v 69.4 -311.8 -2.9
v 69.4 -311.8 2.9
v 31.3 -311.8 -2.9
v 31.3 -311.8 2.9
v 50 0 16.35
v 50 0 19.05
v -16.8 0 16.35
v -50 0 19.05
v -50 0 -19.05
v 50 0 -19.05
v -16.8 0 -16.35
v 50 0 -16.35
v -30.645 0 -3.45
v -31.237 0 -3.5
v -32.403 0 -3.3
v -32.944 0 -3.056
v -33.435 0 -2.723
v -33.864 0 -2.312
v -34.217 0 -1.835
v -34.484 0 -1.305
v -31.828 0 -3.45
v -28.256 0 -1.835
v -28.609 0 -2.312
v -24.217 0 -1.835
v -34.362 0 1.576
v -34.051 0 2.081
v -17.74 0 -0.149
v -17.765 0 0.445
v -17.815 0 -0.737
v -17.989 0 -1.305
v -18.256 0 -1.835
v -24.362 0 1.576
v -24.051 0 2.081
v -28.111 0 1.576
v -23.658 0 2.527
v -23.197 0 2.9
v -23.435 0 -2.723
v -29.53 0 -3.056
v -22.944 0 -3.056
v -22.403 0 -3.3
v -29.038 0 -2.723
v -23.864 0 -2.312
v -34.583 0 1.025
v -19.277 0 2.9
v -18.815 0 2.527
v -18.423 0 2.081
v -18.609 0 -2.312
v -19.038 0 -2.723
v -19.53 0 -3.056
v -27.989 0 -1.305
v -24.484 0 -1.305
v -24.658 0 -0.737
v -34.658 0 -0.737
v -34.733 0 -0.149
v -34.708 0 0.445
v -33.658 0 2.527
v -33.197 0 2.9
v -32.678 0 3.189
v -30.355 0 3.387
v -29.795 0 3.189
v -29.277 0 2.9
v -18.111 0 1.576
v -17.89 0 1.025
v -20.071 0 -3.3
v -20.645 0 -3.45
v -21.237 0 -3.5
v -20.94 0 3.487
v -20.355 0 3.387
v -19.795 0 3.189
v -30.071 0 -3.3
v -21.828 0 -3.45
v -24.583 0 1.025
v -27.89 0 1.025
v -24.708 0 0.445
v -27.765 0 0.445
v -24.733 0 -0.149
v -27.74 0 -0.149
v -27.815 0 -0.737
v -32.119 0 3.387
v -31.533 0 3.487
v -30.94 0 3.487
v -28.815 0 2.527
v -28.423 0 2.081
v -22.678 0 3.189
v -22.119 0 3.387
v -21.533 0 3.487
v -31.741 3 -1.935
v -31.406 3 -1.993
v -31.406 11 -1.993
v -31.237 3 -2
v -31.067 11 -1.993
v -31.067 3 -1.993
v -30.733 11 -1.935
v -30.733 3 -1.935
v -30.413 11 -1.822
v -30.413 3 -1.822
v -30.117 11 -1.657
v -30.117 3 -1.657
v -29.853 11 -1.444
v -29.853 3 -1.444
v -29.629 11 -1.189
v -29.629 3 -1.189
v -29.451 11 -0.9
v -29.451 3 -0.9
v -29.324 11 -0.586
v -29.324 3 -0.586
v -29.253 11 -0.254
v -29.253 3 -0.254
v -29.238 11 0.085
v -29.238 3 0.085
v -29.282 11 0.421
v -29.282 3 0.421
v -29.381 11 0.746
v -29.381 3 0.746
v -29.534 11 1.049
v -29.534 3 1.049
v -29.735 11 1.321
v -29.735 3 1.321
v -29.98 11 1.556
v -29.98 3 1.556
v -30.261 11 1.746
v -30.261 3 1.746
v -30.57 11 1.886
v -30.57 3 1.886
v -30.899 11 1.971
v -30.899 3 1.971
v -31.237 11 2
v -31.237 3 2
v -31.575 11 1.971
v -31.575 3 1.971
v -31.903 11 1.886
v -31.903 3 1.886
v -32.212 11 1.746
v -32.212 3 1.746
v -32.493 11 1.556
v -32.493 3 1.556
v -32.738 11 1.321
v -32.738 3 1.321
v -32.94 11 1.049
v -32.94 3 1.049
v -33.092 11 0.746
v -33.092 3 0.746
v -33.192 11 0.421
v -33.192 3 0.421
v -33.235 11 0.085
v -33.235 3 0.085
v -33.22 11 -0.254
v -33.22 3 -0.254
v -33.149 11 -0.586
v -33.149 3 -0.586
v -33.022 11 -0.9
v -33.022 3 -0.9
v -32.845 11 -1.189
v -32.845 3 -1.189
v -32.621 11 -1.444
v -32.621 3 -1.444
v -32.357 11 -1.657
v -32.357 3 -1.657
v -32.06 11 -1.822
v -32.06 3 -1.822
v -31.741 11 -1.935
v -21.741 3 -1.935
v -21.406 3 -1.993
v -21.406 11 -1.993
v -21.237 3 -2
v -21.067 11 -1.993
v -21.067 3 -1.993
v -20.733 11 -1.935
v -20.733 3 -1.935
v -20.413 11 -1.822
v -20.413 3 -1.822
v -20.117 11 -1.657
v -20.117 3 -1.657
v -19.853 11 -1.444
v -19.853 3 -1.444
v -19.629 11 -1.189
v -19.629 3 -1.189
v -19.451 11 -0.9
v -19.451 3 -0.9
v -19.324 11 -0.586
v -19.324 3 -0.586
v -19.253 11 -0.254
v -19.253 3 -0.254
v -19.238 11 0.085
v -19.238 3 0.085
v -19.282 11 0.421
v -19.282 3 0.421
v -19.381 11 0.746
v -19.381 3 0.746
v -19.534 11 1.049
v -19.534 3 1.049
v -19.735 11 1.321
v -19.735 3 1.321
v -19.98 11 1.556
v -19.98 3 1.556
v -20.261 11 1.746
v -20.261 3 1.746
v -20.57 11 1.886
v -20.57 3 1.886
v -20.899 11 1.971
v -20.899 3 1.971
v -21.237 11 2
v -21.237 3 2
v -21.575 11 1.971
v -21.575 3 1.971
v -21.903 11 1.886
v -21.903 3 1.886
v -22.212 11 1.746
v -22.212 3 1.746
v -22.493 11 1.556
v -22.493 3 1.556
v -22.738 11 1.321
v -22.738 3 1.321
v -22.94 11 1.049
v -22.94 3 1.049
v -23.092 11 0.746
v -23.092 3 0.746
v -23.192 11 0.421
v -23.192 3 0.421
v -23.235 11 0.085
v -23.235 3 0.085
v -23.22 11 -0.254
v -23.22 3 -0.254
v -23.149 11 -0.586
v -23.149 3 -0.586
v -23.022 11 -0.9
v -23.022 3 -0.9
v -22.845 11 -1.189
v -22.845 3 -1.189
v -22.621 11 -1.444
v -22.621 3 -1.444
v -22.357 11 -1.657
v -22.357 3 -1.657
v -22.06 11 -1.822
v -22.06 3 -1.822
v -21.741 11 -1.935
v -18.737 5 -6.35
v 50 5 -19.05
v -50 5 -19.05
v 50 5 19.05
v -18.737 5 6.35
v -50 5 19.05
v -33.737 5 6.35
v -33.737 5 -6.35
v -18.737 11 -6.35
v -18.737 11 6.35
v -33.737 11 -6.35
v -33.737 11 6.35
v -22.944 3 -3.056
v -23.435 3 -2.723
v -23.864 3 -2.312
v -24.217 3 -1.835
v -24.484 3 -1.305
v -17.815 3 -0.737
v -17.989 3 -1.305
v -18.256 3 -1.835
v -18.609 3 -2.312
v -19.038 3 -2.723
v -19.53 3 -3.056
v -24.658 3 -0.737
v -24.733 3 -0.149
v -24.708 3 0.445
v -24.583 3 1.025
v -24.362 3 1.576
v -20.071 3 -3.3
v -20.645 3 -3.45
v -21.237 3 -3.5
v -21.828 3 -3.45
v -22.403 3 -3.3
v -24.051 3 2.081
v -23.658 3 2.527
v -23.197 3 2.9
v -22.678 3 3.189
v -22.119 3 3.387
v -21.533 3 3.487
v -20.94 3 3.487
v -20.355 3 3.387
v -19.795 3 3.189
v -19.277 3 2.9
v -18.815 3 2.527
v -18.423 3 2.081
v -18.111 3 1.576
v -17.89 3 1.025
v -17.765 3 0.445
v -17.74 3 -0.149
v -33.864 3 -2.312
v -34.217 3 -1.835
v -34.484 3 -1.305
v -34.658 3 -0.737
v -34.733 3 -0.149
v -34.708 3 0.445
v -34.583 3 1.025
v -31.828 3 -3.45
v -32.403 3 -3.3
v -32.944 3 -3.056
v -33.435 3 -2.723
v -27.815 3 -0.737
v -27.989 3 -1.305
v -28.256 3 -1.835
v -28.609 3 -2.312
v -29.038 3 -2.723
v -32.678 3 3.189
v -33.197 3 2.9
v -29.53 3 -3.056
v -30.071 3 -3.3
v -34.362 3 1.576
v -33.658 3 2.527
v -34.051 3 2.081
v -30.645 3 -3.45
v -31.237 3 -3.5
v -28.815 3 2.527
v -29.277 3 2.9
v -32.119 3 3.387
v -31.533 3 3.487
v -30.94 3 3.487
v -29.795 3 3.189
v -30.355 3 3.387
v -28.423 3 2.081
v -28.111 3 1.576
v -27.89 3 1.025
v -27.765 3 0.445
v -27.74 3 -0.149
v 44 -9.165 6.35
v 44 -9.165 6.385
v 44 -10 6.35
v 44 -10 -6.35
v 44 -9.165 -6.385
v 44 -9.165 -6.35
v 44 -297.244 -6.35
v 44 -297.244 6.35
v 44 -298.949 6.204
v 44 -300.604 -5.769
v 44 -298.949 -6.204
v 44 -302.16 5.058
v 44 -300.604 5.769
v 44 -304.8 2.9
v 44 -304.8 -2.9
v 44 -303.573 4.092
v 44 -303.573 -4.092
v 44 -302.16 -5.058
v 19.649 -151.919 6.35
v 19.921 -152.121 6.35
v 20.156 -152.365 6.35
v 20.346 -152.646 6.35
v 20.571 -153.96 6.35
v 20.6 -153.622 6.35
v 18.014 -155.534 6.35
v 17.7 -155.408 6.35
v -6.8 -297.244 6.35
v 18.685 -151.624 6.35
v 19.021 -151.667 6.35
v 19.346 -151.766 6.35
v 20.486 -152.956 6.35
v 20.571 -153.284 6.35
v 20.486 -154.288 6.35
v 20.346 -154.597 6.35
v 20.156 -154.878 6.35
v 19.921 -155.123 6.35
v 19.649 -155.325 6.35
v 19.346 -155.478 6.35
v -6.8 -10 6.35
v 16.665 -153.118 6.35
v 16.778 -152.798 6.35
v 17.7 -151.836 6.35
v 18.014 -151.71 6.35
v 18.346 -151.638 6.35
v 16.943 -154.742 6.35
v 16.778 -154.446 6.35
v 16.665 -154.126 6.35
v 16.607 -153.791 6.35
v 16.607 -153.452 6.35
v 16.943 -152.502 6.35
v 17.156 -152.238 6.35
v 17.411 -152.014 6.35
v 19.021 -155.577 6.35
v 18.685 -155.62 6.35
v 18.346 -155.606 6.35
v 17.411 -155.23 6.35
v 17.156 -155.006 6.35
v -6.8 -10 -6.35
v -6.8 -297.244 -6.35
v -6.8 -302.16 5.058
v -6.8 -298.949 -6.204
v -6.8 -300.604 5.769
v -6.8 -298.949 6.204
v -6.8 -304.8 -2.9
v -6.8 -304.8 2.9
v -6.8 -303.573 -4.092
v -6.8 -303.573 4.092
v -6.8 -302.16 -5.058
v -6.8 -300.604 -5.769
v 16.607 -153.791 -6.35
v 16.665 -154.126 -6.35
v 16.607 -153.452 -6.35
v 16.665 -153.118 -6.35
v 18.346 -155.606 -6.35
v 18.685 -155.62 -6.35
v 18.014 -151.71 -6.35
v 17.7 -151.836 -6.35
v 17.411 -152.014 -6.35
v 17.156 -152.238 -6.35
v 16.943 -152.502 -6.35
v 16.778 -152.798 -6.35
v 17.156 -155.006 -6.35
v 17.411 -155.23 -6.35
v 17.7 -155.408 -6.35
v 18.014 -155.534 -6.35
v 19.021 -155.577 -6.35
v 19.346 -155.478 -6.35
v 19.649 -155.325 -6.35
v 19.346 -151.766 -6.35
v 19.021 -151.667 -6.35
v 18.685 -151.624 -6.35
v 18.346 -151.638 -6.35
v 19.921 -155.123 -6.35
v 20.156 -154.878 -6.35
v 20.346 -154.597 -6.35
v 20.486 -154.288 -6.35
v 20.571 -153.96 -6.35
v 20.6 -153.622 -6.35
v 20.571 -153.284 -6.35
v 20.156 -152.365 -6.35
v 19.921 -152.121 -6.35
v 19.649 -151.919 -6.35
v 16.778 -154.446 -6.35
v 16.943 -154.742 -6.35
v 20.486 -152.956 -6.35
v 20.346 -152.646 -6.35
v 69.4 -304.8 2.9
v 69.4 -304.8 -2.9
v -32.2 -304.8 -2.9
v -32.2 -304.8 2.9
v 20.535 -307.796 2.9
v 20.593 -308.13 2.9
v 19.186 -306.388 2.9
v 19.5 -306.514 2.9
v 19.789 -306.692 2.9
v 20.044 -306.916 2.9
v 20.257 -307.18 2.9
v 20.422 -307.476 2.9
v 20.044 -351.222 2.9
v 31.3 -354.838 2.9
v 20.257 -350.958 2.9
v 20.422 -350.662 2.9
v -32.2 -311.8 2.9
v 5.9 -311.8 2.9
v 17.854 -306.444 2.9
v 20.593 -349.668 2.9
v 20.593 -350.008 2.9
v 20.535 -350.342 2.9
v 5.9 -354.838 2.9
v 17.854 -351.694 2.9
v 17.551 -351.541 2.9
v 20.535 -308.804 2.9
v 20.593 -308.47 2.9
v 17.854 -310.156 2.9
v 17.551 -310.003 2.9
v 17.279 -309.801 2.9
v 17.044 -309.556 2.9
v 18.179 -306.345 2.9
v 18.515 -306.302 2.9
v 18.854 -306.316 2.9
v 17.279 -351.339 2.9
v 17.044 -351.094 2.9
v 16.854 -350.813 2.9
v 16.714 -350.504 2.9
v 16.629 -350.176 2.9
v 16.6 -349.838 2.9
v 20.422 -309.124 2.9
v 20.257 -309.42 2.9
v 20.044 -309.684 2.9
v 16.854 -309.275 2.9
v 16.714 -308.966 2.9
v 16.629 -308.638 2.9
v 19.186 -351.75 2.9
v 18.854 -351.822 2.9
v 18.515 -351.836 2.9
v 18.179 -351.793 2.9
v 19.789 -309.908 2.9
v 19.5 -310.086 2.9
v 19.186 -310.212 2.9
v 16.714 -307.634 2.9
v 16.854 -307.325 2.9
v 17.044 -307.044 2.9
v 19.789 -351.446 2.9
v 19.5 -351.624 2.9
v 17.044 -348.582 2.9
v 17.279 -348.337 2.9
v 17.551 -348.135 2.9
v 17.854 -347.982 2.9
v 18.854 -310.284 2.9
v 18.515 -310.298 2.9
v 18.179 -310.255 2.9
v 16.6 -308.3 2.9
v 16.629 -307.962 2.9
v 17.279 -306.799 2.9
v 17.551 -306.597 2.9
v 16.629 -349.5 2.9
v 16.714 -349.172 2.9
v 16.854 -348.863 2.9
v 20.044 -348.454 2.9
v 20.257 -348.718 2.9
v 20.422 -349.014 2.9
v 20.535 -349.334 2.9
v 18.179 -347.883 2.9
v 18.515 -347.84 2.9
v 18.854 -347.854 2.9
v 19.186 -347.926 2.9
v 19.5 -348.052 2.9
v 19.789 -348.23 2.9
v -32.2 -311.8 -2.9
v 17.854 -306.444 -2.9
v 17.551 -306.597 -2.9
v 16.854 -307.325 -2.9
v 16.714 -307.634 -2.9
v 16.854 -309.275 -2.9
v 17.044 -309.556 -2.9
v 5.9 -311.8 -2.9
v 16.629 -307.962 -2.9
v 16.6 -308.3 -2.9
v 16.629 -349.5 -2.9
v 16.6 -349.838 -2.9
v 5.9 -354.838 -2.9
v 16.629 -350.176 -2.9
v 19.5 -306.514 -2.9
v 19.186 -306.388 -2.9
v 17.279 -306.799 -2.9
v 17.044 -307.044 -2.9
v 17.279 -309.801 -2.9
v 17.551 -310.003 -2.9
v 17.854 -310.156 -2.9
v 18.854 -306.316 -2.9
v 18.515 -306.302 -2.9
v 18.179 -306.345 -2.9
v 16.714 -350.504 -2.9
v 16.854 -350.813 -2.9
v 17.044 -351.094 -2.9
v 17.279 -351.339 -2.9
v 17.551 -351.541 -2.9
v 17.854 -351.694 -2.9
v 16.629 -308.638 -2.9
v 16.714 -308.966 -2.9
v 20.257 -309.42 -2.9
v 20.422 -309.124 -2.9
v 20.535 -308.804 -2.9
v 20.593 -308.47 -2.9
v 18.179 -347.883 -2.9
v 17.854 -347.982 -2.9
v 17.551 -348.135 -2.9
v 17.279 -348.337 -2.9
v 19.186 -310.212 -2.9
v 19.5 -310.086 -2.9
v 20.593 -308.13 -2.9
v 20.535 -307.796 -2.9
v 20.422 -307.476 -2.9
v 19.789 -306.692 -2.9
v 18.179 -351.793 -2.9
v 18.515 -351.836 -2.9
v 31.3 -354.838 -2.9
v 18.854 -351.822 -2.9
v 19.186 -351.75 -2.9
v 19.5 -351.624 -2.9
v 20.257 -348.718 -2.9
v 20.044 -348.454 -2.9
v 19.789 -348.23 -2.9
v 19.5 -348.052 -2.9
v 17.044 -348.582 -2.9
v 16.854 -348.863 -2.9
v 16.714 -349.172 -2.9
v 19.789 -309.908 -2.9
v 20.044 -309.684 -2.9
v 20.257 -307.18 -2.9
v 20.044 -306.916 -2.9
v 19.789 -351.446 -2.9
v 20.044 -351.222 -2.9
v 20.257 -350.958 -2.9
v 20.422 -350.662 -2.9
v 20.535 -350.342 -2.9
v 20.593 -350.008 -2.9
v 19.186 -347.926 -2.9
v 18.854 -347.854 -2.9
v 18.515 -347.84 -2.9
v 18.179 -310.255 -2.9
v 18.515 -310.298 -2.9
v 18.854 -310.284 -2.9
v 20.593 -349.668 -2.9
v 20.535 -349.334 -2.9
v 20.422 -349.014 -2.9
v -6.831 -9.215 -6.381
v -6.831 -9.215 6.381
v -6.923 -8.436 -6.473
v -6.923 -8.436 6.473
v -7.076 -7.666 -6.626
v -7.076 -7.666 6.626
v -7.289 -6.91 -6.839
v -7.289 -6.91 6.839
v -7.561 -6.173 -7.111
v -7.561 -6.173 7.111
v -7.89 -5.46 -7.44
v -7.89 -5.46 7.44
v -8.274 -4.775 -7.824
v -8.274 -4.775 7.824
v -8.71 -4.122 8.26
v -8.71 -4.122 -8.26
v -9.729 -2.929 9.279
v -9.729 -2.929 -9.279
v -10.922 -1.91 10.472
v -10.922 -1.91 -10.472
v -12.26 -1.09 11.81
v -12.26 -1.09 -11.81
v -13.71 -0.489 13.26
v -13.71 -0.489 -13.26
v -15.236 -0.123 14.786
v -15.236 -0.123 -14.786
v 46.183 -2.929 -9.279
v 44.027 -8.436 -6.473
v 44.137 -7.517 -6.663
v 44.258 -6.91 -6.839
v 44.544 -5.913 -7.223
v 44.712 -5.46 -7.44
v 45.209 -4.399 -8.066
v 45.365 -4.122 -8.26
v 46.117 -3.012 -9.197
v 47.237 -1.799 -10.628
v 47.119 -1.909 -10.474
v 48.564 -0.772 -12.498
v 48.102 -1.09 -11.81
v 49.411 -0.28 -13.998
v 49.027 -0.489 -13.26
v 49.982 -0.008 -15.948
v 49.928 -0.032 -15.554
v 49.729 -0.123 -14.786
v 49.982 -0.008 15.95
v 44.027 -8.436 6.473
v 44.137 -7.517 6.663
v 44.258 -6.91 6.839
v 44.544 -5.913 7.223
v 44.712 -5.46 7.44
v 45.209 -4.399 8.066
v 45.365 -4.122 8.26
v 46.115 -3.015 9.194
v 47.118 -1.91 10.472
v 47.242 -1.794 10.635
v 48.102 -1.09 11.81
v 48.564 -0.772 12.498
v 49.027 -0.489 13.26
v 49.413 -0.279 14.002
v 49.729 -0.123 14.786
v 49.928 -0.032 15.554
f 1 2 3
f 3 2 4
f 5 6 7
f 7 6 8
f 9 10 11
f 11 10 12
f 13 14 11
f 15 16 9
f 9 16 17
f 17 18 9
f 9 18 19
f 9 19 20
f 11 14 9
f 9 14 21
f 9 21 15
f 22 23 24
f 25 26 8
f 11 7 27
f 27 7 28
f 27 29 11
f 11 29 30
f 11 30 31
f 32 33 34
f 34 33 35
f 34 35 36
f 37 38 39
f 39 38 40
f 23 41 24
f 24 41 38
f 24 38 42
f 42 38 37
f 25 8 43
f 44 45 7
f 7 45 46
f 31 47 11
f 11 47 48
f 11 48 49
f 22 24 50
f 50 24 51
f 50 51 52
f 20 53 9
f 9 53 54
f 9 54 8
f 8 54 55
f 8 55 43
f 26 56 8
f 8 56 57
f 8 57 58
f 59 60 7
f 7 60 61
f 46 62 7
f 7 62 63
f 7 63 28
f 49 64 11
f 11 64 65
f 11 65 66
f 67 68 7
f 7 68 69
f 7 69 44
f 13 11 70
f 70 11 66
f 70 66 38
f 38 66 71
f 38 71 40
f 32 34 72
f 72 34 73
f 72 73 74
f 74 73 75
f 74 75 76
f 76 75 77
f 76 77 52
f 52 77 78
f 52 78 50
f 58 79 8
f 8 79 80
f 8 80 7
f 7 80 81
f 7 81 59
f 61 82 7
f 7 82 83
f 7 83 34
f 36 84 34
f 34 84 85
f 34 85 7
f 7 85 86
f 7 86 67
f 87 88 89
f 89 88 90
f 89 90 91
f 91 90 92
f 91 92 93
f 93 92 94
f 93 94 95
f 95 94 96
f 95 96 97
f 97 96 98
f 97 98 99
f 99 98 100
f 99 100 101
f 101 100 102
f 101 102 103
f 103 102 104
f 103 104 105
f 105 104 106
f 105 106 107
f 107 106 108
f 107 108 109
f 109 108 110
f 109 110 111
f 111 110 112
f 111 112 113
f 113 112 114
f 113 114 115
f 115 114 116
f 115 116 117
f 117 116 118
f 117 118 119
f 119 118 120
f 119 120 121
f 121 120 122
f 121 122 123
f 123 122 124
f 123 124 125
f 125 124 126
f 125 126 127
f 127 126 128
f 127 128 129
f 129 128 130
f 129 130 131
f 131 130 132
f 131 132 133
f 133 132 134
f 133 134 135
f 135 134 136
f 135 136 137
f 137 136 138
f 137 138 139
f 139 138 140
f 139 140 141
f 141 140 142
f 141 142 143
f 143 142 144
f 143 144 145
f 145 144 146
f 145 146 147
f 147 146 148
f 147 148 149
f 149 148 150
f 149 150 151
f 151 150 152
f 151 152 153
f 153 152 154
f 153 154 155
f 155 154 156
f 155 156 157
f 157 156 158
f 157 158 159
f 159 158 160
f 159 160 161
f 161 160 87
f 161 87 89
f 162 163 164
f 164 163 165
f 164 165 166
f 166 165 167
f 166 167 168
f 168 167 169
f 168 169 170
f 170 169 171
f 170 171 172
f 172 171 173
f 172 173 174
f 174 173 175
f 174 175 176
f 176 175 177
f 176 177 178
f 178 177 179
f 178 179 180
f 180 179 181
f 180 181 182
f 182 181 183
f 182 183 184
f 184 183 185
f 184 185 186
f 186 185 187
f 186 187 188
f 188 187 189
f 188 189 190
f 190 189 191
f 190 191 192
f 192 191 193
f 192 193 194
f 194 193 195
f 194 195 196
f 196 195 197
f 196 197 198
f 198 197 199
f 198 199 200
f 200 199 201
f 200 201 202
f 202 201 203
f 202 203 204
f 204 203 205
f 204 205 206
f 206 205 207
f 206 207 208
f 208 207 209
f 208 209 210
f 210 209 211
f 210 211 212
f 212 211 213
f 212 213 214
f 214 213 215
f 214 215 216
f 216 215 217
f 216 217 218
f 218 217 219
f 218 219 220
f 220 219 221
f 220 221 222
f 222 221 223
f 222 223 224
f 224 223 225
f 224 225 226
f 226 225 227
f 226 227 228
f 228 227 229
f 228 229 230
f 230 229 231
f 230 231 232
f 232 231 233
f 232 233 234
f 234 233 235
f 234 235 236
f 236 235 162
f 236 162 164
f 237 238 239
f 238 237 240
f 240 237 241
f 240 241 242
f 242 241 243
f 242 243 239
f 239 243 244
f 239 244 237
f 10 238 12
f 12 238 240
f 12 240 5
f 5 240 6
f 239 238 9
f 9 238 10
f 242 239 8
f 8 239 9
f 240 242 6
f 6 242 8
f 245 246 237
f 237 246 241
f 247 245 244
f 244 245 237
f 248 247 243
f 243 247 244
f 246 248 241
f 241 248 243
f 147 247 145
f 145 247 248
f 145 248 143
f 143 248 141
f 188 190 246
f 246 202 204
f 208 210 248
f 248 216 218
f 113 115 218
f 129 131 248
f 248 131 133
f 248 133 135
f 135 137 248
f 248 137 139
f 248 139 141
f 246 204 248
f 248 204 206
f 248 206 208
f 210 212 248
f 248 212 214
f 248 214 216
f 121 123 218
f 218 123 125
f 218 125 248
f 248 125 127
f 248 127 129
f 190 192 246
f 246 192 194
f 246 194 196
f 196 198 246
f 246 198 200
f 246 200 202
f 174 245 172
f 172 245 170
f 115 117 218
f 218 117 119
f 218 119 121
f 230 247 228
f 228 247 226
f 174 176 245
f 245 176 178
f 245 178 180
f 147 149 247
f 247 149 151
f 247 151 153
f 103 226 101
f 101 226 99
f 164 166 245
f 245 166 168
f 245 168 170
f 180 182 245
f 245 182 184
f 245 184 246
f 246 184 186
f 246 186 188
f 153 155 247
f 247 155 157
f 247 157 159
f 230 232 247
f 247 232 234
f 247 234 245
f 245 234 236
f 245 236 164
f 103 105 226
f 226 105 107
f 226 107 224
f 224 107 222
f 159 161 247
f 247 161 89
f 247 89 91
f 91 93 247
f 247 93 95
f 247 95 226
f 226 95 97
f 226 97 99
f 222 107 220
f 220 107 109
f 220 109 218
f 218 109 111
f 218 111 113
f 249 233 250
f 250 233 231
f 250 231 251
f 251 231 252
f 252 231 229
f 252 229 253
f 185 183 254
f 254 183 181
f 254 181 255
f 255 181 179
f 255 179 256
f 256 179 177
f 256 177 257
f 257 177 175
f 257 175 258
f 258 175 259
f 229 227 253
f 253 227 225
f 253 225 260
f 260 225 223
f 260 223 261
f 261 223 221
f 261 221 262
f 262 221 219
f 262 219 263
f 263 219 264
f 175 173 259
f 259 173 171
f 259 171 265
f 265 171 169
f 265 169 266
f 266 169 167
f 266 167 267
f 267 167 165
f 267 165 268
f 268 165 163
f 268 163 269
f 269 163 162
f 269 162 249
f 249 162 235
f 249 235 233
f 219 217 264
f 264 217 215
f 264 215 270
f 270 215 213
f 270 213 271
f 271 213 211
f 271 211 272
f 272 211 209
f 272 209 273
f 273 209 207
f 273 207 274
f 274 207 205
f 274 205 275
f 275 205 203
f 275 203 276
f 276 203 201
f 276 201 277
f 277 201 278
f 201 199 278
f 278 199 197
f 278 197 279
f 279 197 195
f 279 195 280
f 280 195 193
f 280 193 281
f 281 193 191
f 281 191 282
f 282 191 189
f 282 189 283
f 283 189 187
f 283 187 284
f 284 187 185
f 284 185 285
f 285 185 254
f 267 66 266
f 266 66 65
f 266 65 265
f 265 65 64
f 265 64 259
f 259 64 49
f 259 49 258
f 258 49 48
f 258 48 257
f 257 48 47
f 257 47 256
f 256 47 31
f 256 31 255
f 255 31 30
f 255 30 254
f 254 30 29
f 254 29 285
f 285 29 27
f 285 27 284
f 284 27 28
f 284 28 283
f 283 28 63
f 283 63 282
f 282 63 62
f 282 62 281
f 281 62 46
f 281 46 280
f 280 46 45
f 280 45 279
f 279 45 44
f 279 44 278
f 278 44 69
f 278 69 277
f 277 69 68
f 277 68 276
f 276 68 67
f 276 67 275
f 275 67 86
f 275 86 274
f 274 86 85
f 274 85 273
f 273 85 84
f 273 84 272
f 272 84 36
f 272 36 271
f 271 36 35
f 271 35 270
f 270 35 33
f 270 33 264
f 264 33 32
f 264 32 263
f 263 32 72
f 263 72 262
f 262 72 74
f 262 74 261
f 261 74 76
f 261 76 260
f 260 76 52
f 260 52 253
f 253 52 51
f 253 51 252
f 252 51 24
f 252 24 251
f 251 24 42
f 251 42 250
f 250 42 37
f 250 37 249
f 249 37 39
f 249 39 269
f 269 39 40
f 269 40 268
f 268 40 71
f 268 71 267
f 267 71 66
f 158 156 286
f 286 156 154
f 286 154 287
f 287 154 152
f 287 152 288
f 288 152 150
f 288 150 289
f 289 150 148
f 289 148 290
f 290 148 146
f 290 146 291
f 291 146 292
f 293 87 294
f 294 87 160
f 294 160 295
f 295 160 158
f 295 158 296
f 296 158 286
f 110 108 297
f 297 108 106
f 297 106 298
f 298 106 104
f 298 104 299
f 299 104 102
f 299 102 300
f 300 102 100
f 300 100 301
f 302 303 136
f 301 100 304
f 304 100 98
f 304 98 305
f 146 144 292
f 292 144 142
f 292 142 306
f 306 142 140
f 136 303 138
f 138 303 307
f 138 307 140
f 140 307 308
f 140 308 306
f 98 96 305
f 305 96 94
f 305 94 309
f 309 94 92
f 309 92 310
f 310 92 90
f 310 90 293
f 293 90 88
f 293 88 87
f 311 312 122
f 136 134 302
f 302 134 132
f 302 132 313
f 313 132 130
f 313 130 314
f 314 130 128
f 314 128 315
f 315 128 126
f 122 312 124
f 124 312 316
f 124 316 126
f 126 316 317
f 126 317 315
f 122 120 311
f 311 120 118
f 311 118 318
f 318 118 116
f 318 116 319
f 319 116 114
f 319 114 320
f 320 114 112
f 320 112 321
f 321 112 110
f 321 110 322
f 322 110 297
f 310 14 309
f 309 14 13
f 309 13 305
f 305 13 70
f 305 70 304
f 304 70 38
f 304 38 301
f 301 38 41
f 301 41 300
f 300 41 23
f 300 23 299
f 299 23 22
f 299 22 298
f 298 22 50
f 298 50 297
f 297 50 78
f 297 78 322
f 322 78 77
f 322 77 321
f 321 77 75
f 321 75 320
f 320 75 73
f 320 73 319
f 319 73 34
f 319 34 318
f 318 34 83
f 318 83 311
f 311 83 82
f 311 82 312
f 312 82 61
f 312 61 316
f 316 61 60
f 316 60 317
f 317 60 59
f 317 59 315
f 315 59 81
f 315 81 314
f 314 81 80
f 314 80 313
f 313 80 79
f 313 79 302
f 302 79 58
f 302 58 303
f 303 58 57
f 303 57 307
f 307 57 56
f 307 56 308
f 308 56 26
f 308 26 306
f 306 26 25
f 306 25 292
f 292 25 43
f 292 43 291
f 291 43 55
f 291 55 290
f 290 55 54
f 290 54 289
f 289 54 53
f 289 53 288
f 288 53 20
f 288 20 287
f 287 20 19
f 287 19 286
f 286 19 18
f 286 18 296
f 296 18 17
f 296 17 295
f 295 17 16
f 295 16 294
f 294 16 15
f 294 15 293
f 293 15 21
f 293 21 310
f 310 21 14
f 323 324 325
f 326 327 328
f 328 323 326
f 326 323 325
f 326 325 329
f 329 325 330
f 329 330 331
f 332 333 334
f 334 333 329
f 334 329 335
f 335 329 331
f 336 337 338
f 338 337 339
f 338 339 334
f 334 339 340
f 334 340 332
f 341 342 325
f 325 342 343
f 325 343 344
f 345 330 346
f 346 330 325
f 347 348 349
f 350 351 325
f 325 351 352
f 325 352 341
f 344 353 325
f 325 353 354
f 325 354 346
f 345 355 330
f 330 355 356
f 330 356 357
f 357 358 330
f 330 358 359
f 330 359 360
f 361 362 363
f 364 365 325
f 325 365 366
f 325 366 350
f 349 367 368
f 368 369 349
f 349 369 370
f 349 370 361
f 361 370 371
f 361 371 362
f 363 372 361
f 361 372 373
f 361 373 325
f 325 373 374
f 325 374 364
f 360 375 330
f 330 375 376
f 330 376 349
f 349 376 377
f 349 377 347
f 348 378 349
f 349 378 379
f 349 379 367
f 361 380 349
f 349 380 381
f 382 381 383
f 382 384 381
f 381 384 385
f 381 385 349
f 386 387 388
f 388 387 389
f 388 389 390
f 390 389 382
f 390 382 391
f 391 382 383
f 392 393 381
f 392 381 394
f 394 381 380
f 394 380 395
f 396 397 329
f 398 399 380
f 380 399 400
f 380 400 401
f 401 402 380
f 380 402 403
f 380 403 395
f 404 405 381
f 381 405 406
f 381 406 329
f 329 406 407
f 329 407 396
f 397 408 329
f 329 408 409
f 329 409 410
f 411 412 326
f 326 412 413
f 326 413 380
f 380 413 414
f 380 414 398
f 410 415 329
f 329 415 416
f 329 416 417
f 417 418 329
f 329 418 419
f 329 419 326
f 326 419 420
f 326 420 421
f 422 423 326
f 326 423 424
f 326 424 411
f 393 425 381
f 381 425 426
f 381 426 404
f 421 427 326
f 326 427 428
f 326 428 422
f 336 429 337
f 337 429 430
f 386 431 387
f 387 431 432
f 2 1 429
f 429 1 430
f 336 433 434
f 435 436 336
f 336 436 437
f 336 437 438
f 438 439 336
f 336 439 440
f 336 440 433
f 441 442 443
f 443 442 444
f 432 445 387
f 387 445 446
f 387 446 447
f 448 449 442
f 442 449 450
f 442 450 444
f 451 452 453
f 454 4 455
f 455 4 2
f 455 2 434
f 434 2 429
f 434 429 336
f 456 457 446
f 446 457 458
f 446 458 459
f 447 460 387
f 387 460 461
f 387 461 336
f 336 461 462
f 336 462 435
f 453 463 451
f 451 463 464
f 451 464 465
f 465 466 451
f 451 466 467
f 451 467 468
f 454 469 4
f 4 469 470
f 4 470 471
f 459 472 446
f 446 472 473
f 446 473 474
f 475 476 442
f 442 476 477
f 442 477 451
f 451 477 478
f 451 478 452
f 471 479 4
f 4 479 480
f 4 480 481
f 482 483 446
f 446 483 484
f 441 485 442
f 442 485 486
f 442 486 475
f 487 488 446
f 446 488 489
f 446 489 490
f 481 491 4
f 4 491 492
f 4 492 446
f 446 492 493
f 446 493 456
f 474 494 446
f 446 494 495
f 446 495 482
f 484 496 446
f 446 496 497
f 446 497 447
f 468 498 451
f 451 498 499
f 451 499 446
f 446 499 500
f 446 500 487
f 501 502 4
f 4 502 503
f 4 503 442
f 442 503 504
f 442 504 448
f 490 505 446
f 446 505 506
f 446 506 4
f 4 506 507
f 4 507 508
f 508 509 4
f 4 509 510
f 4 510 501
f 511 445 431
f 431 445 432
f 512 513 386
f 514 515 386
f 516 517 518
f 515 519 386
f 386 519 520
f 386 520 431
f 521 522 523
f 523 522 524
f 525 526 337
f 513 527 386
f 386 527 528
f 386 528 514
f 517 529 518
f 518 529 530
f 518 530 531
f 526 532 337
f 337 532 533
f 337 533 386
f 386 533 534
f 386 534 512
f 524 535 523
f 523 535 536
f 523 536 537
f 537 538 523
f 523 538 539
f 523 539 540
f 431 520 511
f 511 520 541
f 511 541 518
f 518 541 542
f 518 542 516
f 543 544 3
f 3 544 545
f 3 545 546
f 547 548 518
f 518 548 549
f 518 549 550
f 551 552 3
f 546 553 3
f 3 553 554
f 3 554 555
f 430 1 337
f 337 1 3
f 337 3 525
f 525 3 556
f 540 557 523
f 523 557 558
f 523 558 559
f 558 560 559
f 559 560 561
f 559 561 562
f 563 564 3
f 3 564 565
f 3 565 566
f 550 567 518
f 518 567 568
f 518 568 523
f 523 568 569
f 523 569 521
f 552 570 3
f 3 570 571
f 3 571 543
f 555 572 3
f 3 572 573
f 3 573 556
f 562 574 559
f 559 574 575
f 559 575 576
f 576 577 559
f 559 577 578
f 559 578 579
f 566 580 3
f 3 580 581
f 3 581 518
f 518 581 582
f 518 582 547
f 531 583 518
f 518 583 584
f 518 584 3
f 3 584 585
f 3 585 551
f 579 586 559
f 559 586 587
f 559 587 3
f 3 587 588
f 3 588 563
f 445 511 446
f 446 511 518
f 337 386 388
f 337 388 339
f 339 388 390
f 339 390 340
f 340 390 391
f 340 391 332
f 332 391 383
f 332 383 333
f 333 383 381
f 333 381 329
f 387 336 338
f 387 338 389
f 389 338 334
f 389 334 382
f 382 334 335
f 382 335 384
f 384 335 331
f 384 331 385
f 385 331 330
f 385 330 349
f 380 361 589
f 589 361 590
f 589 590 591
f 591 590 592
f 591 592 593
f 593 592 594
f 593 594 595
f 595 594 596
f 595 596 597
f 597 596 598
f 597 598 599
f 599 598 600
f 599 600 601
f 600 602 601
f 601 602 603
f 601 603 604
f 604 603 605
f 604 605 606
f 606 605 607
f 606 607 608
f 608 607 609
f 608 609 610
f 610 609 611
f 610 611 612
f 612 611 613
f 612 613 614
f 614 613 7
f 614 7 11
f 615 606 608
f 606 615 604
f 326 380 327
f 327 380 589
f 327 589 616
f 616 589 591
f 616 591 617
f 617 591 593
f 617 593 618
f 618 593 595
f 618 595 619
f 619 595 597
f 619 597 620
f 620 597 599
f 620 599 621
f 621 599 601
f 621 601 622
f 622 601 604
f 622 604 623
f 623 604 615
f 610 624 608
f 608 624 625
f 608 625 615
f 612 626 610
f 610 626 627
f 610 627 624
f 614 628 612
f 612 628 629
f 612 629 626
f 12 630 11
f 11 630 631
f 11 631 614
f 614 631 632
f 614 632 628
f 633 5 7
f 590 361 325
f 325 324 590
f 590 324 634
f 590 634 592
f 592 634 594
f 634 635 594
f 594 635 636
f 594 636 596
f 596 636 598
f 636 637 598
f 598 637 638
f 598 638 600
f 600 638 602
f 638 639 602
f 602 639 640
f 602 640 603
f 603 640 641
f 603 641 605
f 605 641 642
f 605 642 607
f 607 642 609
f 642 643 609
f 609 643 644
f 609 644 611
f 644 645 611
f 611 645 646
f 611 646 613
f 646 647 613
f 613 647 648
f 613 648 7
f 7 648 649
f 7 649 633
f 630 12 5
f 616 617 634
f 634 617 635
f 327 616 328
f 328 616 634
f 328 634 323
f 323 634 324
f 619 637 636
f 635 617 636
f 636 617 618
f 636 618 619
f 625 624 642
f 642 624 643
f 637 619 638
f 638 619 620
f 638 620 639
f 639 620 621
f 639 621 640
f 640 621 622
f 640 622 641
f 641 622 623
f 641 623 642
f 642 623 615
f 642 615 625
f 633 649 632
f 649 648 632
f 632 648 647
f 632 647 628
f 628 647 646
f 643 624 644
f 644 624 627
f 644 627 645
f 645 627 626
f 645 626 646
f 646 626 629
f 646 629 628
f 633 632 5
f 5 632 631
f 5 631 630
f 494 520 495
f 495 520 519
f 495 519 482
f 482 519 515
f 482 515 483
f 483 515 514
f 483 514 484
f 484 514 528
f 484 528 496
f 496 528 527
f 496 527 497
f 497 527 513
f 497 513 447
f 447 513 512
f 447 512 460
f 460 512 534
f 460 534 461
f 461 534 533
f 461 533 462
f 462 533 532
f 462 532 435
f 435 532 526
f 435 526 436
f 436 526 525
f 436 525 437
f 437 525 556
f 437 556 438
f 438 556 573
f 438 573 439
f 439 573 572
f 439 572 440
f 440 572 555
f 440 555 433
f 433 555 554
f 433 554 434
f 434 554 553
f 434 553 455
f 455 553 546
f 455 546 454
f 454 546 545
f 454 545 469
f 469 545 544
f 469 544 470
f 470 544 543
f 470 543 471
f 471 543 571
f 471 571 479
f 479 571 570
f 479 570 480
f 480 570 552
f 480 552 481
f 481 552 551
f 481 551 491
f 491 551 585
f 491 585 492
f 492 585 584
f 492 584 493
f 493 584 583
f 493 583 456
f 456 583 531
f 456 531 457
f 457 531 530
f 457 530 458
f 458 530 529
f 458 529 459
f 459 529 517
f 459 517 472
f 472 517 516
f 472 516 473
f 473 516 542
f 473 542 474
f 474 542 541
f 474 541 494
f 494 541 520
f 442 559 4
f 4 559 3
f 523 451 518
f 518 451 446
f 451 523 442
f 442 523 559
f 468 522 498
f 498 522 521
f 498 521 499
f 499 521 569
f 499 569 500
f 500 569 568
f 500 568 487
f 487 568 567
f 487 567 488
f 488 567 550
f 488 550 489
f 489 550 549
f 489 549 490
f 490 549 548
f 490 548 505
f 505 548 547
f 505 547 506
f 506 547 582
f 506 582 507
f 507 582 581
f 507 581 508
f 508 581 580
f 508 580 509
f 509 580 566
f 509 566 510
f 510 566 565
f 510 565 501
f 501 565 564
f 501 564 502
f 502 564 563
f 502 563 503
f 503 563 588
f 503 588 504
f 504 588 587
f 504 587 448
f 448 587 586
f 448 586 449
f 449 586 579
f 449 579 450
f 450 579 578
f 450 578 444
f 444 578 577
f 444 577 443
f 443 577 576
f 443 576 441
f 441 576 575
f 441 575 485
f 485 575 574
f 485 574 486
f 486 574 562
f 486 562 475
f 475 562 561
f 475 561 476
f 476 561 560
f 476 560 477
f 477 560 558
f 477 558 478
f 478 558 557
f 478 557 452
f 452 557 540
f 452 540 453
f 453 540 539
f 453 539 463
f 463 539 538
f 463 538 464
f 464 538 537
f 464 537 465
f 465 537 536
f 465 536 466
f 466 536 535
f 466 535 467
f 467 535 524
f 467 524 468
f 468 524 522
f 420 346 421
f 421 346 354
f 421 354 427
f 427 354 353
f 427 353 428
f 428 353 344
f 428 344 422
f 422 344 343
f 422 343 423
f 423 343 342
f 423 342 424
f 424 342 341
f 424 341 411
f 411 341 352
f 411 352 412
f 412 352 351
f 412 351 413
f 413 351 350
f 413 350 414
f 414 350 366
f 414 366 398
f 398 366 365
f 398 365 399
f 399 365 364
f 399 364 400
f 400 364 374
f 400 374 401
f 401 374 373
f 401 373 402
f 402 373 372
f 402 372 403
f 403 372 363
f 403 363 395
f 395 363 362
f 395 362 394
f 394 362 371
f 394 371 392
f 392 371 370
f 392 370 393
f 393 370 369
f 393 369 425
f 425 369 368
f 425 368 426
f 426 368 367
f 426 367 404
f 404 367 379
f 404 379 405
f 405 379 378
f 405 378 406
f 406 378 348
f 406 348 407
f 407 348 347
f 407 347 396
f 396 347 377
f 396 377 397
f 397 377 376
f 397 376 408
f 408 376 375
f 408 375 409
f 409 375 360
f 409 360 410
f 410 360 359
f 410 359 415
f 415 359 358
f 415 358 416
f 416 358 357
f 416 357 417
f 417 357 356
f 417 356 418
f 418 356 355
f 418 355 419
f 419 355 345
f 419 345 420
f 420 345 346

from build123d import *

# Parameters (mm, degrees)
BOSS_EXTRUDE1_DEPTH         = 5
BOSS_EXTRUDE2_DEPTH         = 6
TAP_DRILL_FOR_M4X0_7_TAP1_D = 3.3
SKETCH3_R                   = 2.000000000000003
CUT_EXTRUDE1_DEPTH          = 55.62510869554404
SKETCH12_R                  = 3.5
CUT_EXTRUDE2_DEPTH          = 3
BOSS_EXTRUDE3_DEPTH         = 304.8
SKETCH14_W                  = 101.6
SKETCH14_H                  = 5.799999999999999
BOSS_EXTRUDE4_DEPTH         = 7
FILLET1_R                   = 10
FILLET2_R                   = 10
FILLET3_R                   = 10
SKETCH15_R                  = 2.0000000000000036
CUT_EXTRUDE3_DEPTH          = 321.1833888570736
SKETCH16_W                  = 25.400000000000002
SKETCH16_H                  = 5.799999999999999
BOSS_EXTRUDE5_DEPTH         = 43.038
SKETCH17_R                  = 2.0000000000000036
CUT_EXTRUDE4_DEPTH          = 363.22668143581035
SKETCH18_R                  = 2.0000000000000036
CUT_EXTRUDE5_DEPTH          = 363.4521019996987


with BuildPart() as part:
    # Sketch1 → Boss-Extrude1 (new body)
    with BuildSketch(Plane(origin=(0, 0, 0), x_dir=(1, 0, 0), z_dir=(0, 1, 0))):
        Polygon((-49.99999999999999, 19.050000000000004), (50.00000000000001, 19.050000000000004), (50.000000000000014, -19.049999999999997), (-49.99999999999999, -19.049999999999997), align=None)
    extrude(amount=BOSS_EXTRUDE1_DEPTH)

    # Sketch2 → Boss-Extrude2 (add)
    with BuildSketch(Plane(origin=(0, 5, 0), x_dir=(1, 0, 0), z_dir=(0, 1, 0))):
        Polygon((-33.73664574389268, 6.349999999999993), (-18.736645743892684, 6.349999999999995), (-18.73664574389268, -6.350000000000003), (-33.73664574389268, -6.350000000000006), align=None)
    extrude(amount=BOSS_EXTRUDE2_DEPTH)

    # Tap Drill for M4x0.7 Tap1 (through all)
    with Locations(Plane(origin=(0, 11, 0), x_dir=(1, 0, 0), z_dir=(0, 1, 0))):
        with Locations((-31.236645744, 0), (-21.236645744, 0)):
            Hole(TAP_DRILL_FOR_M4X0_7_TAP1_D / 2)

    # Sketch3 → Cut-Extrude1 (cut, through all)
    with BuildSketch(Plane(origin=(0, 11, 0), x_dir=(1, 0, 0), z_dir=(0, 1, 0))):
        with Locations(Location((-21.236645743892684, 0, 0), (0, 0, 270))):
            Circle(SKETCH3_R)
        with Locations(Location((-31.23664574389268, 0, 0), (0, 0, 270))):
            Circle(SKETCH3_R)
    extrude(amount=-CUT_EXTRUDE1_DEPTH, mode=Mode.SUBTRACT)

    # Sketch12 → Cut-Extrude2 (cut)
    with BuildSketch(Plane.XZ):
        with Locations(Location((-31.23664574389268, 0, 0), (0, 0, 270))):
            Circle(SKETCH12_R)
        with Locations(Location((-21.236645743892684, 0, 0), (0, 0, 270))):
            Circle(SKETCH12_R)
    extrude(amount=-CUT_EXTRUDE2_DEPTH, mode=Mode.SUBTRACT)

    # Sketch13 → Boss-Extrude3 (add)
    with BuildSketch(Plane.XZ):
        Polygon((-6.799999999999993, 6.349999999999998), (44.00000000000001, 6.349999999999998), (44.00000000000001, -6.350000000000001), (-6.799999999999991, -6.350000000000001), align=None)
    extrude(amount=BOSS_EXTRUDE3_DEPTH)

    # Sketch14 → Boss-Extrude4 (add)
    with BuildSketch(Plane.XZ.offset(304.8)):
        with Locations((18.600000000000005, 2.89e-15)):
            Rectangle(SKETCH14_W, SKETCH14_H)
    extrude(amount=BOSS_EXTRUDE4_DEPTH)

    # Fillet1
    # the kernel refuses this fillet: 10 mm, written as the material it takes off along each edge
    with BuildSketch(Plane(origin=(62.89072192903172, -304.8, -6.350000000000001), x_dir=(0, 1, 0), z_dir=(-1, 0, 0))) as fillet1_piece_1:
        with BuildLine():
            CenterArc((7.556288771612685, -10), FILLET1_R, 90, 49.08035004511348)
            Line((0, -3.450000000000001), (-0.1511257754322628, -3.3190000000000013))
            ThreePointArc((-0.1511257754322628, -3.3190000000000013), (-0.19999999999998863, -1.7250000000000005), (-0.19999999999998863, 0))
            Line((-0.19999999999998863, 0), (0, 0.20000000000000018))
            Line((0, 0.20000000000000018), (7.556288771612685, 0.20000000000000018))
            Line((7.556288771612685, 0.20000000000000018), (7.556288771612685, 0))
        make_face()
    extrude(amount=88.58144385806342, mode=Mode.SUBTRACT)

    # Fillet2
    # the kernel refuses this fillet: 10 mm, written as the material it takes off along each edge
    with BuildSketch(Plane(origin=(-25.690721929031707, -304.8, 6.349999999999998), x_dir=(0, 1, 0), z_dir=(1, 0, 0))) as fillet2_piece_1:
        with BuildLine():
            CenterArc((7.556288771612685, -10), FILLET2_R, 90, 49.08035004511345)
            Line((0, -3.4499999999999957), (-0.1511257754322628, -3.3189999999999955))
            ThreePointArc((-0.1511257754322628, -3.3189999999999955), (-0.19999999999998863, -1.7249999999999979), (-0.19999999999998863, 0))
            Line((-0.19999999999998863, 0), (0, 0.20000000000000018))
            Line((0, 0.20000000000000018), (7.556288771612685, 0.20000000000000018))
            Line((7.556288771612685, 0.20000000000000018), (7.556288771612685, 0))
        make_face()
    extrude(amount=88.58144385806342, mode=Mode.SUBTRACT)

    # Fillet3
    # the kernel refuses this fillet: 10 mm, written as the material it adds along each edge
    with BuildSketch(Plane(origin=(44.00000000000001, 0, 6.349999999999998), x_dir=(1, 0, 0), z_dir=(0, 0, -1))) as fillet3_piece_1:
        with BuildLine():
            CenterArc((10, 9.165151389911683), FILLET3_R, 180, 66.42182152179822)
            Line((0, 9.165151389911683), (-0.20000000000000284, 9.165151389911683))
            Line((-0.20000000000000284, 9.165151389911683), (-0.20000000000000284, 0))
            Line((-0.20000000000000284, 0), (0, -0.2))
            ThreePointArc((0, -0.2), (3.000000000000007, -0.2), (5.920000000000009, -0.18330302779823368))
            Line((5.920000000000009, -0.18330302779823368), (6.000000000000007, 0))
        make_face()
    extrude(amount=12.7)
    with BuildSketch(Plane(origin=(-6.799999999999993, 0, 6.349999999999998), x_dir=(0, 0, 1), z_dir=(1, 0, 0))) as fillet3_piece_2:
        with BuildLine():
            CenterArc((FILLET3_R, FILLET3_R), FILLET3_R, 180, 90)
            Line((-3.55e-15, FILLET3_R), (-FILLET3_R * 0.02, FILLET3_R))
            Line((-FILLET3_R * 0.02, FILLET3_R), (-FILLET3_R * 0.02, -FILLET3_R * 0.02))
            Line((-FILLET3_R * 0.02, -FILLET3_R * 0.02), (FILLET3_R, -FILLET3_R * 0.02))
            Line((FILLET3_R, -FILLET3_R * 0.02), (FILLET3_R, 0))
        make_face()
    extrude(amount=50.8)
    with BuildSketch(Plane(origin=(-6.799999999999991, 0, -6.350000000000001), x_dir=(-1, 0, -1.4e-16), z_dir=(-1.4e-16, 0, 1))) as fillet3_piece_3:
        with BuildLine():
            CenterArc((FILLET3_R, FILLET3_R), FILLET3_R, 180, 90)
            Line((-8.9e-16, FILLET3_R), (-FILLET3_R * 0.02, FILLET3_R))
            Line((-FILLET3_R * 0.02, FILLET3_R), (-FILLET3_R * 0.02, -FILLET3_R * 0.02))
            Line((-FILLET3_R * 0.02, -FILLET3_R * 0.02), (FILLET3_R, -FILLET3_R * 0.02))
            Line((FILLET3_R, -FILLET3_R * 0.02), (FILLET3_R, 0))
        make_face()
    extrude(amount=12.7)
    with BuildSketch(Plane(origin=(44.00000000000001, 0, -6.350000000000001), x_dir=(0, 0, -1), z_dir=(-1, 0, 0))) as fillet3_piece_4:
        with BuildLine():
            CenterArc((FILLET3_R, FILLET3_R), FILLET3_R, 180, 90)
            Line((0, FILLET3_R), (-FILLET3_R * 0.02, FILLET3_R))
            Line((-FILLET3_R * 0.02, FILLET3_R), (-FILLET3_R * 0.02, -FILLET3_R * 0.02))
            Line((-FILLET3_R * 0.02, -FILLET3_R * 0.02), (FILLET3_R, -FILLET3_R * 0.02))
            Line((FILLET3_R, -FILLET3_R * 0.02), (FILLET3_R, 0))
        make_face()
    extrude(amount=50.8)
    with BuildSketch(Plane(origin=(44.00000000000001, 0, 29.262878474779207), x_dir=(1, 0, 0), z_dir=(0, 0, -1))) as fillet3_piece_5a_section:
        with BuildLine():
            CenterArc((10, 9.165151389911683), FILLET3_R, 180, 66.42182152179822)
            Line((0, 9.165151389911683), (-0.20000000000000284, 9.165151389911683))
            Line((-0.20000000000000284, 9.165151389911683), (-0.20000000000000284, 0))
            Line((-0.20000000000000284, 0), (0, -0.2))
            ThreePointArc((0, -0.2), (3.000000000000007, -0.2), (5.920000000000009, -0.18330302779823368))
            Line((5.920000000000009, -0.18330302779823368), (6.000000000000007, 0))
        make_face()
    fillet3_piece_5a = extrude(amount=35.61287847477921, mode=Mode.PRIVATE)
    fillet3_piece_5a = split(fillet3_piece_5a, bisect_by=Plane(origin=(45.551632877410285, -2.2318754420498643, 19.049999999999997), z_dir=(0, 0, -1)), keep=Keep.TOP, mode=Mode.PRIVATE)
    fillet3_piece_5a = split(fillet3_piece_5a, bisect_by=Plane(origin=(45.551632877410285, -2.2318754420498643, 6.349999999999998), z_dir=(0, 0, 1)), keep=Keep.TOP, mode=Mode.PRIVATE)
    with BuildSketch(Plane(origin=(-6.799999999999993, 0, 6.349999999999998), x_dir=(0, 0, 1), z_dir=(1, 0, 0))) as fillet3_piece_5b_section:
        with BuildLine():
            CenterArc((FILLET3_R, FILLET3_R), FILLET3_R, 180, 90)
            Line((-3.55e-15, FILLET3_R), (-FILLET3_R * 0.02, FILLET3_R))
            Line((-FILLET3_R * 0.02, FILLET3_R), (-FILLET3_R * 0.02, -FILLET3_R * 0.02))
            Line((-FILLET3_R * 0.02, -FILLET3_R * 0.02), (FILLET3_R, -FILLET3_R * 0.02))
            Line((FILLET3_R, -FILLET3_R * 0.02), (FILLET3_R, 0))
        make_face()
    fillet3_piece_5b = extrude(amount=75.8, mode=Mode.PRIVATE)
    fillet3_piece_5b = split(fillet3_piece_5b, bisect_by=Plane(origin=(50.000000000000014, -2.2639511426682537, 8.613951142668249), z_dir=(-1, 0, 1.9e-16)), keep=Keep.TOP, mode=Mode.PRIVATE)
    fillet3_piece_5b = split(fillet3_piece_5b, bisect_by=Plane(origin=(44.00000000000001, -2.2639511426682537, 8.613951142668249), z_dir=(1, 0, 0)), keep=Keep.TOP, mode=Mode.PRIVATE)
    fillet3_piece_5 = fillet3_piece_5a & fillet3_piece_5b
    add(fillet3_piece_5)
    with BuildSketch(Plane(origin=(69, 0, -6.350000000000001), x_dir=(0, 0, -1), z_dir=(-1, 0, 0))) as fillet3_piece_6a_section:
        with BuildLine():
            CenterArc((FILLET3_R, FILLET3_R), FILLET3_R, 180, 90)
            Line((0, FILLET3_R), (-FILLET3_R * 0.02, FILLET3_R))
            Line((-FILLET3_R * 0.02, FILLET3_R), (-FILLET3_R * 0.02, -FILLET3_R * 0.02))
            Line((-FILLET3_R * 0.02, -FILLET3_R * 0.02), (FILLET3_R, -FILLET3_R * 0.02))
            Line((FILLET3_R, -FILLET3_R * 0.02), (FILLET3_R, 0))
        make_face()
    fillet3_piece_6a = extrude(amount=75.79999999999998, mode=Mode.PRIVATE)
    fillet3_piece_6a = split(fillet3_piece_6a, bisect_by=Plane(origin=(50.00000000000001, -2.2639511426682555, -8.613951142668254), z_dir=(-1, 0, 1.9e-16)), keep=Keep.TOP, mode=Mode.PRIVATE)
    fillet3_piece_6a = split(fillet3_piece_6a, bisect_by=Plane(origin=(44.00000000000001, -2.2639511426682555, -8.613951142668252), z_dir=(1, 0, 0)), keep=Keep.TOP, mode=Mode.PRIVATE)
    with BuildSketch(Plane(origin=(44.00000000000001, 0, 6.349999999999998), x_dir=(1, 0, 0), z_dir=(0, 0, -1))) as fillet3_piece_6b_section:
        with BuildLine():
            CenterArc((10, 9.165151389911683), FILLET3_R, 180, 66.42182152179822)
            Line((0, 9.165151389911683), (-0.20000000000000284, 9.165151389911683))
            Line((-0.20000000000000284, 9.165151389911683), (-0.20000000000000284, 0))
            Line((-0.20000000000000284, 0), (0, -0.2))
            ThreePointArc((0, -0.2), (3.000000000000007, -0.2), (5.920000000000009, -0.18330302779823368))
            Line((5.920000000000009, -0.18330302779823368), (6.000000000000007, 0))
        make_face()
    fillet3_piece_6b = extrude(amount=35.61287847477921, mode=Mode.PRIVATE)
    fillet3_piece_6b = split(fillet3_piece_6b, bisect_by=Plane(origin=(45.55163287741028, -2.2318754420498657, -19.050000000000004), z_dir=(0, 0, 1)), keep=Keep.TOP, mode=Mode.PRIVATE)
    fillet3_piece_6b = split(fillet3_piece_6b, bisect_by=Plane(origin=(45.551632877410285, -2.2318754420498657, -6.350000000000001), z_dir=(0, 0, -1)), keep=Keep.TOP, mode=Mode.PRIVATE)
    fillet3_piece_6 = fillet3_piece_6a & fillet3_piece_6b
    add(fillet3_piece_6)
    with BuildSketch(Plane(origin=(-6.799999999999991, 0, -6.350000000000001), x_dir=(-1, 0, -1.4e-16), z_dir=(-1.4e-16, 0, 1))) as fillet3_piece_7a_section:
        with BuildLine():
            CenterArc((FILLET3_R, FILLET3_R), FILLET3_R, 180, 90)
            Line((-8.9e-16, FILLET3_R), (-FILLET3_R * 0.02, FILLET3_R))
            Line((-FILLET3_R * 0.02, FILLET3_R), (-FILLET3_R * 0.02, -FILLET3_R * 0.02))
            Line((-FILLET3_R * 0.02, -FILLET3_R * 0.02), (FILLET3_R, -FILLET3_R * 0.02))
            Line((FILLET3_R, -FILLET3_R * 0.02), (FILLET3_R, 0))
        make_face()
    fillet3_piece_7a = extrude(amount=37.699999999999996, mode=Mode.PRIVATE)
    fillet3_piece_7a = split(fillet3_piece_7a, bisect_by=Plane(origin=(-9.063951142668245, -2.2639511426682555, 19.049999999999997), z_dir=(0, 0, -1)), keep=Keep.TOP, mode=Mode.PRIVATE)
    fillet3_piece_7a = split(fillet3_piece_7a, bisect_by=Plane(origin=(-9.063951142668246, -2.2639511426682555, 6.349999999999998), z_dir=(0, 0, 1)), keep=Keep.TOP, mode=Mode.PRIVATE)
    with BuildSketch(Plane(origin=(-31.79999999999999, 0, 6.349999999999998), x_dir=(0, 0, 1), z_dir=(1, 0, 0))) as fillet3_piece_7b_section:
        with BuildLine():
            CenterArc((FILLET3_R, FILLET3_R), FILLET3_R, 180, 90)
            Line((-3.55e-15, FILLET3_R), (-FILLET3_R * 0.02, FILLET3_R))
            Line((-FILLET3_R * 0.02, FILLET3_R), (-FILLET3_R * 0.02, -FILLET3_R * 0.02))
            Line((-FILLET3_R * 0.02, -FILLET3_R * 0.02), (FILLET3_R, -FILLET3_R * 0.02))
            Line((FILLET3_R, -FILLET3_R * 0.02), (FILLET3_R, 0))
        make_face()
    fillet3_piece_7b = extrude(amount=75.8, mode=Mode.PRIVATE)
    fillet3_piece_7b = split(fillet3_piece_7b, bisect_by=Plane(origin=(-6.799999999999993, -2.263951142668253, 8.613951142668249), z_dir=(-1, 0, -1.4e-16)), keep=Keep.TOP, mode=Mode.PRIVATE)
    fillet3_piece_7 = fillet3_piece_7a & fillet3_piece_7b
    add(fillet3_piece_7)
    with BuildSketch(Plane(origin=(-6.799999999999987, 0, -31.349999999999998), x_dir=(-1, 0, -1.4e-16), z_dir=(-1.4e-16, 0, 1))) as fillet3_piece_8a_section:
        with BuildLine():
            CenterArc((FILLET3_R, FILLET3_R), FILLET3_R, 180, 90)
            Line((-8.9e-16, FILLET3_R), (-FILLET3_R * 0.02, FILLET3_R))
            Line((-FILLET3_R * 0.02, FILLET3_R), (-FILLET3_R * 0.02, -FILLET3_R * 0.02))
            Line((-FILLET3_R * 0.02, -FILLET3_R * 0.02), (FILLET3_R, -FILLET3_R * 0.02))
            Line((FILLET3_R, -FILLET3_R * 0.02), (FILLET3_R, 0))
        make_face()
    fillet3_piece_8a = extrude(amount=37.699999999999996, mode=Mode.PRIVATE)
    fillet3_piece_8a = split(fillet3_piece_8a, bisect_by=Plane(origin=(-9.063951142668245, -2.2639511426682524, -19.050000000000004), z_dir=(0, 0, 1)), keep=Keep.TOP, mode=Mode.PRIVATE)
    fillet3_piece_8a = split(fillet3_piece_8a, bisect_by=Plane(origin=(-9.063951142668245, -2.2639511426682524, -6.350000000000001), z_dir=(0, 0, -1)), keep=Keep.TOP, mode=Mode.PRIVATE)
    with BuildSketch(Plane(origin=(44.00000000000001, 0, -6.350000000000001), x_dir=(0, 0, -1), z_dir=(-1, 0, 0))) as fillet3_piece_8b_section:
        with BuildLine():
            CenterArc((FILLET3_R, FILLET3_R), FILLET3_R, 180, 90)
            Line((0, FILLET3_R), (-FILLET3_R * 0.02, FILLET3_R))
            Line((-FILLET3_R * 0.02, FILLET3_R), (-FILLET3_R * 0.02, -FILLET3_R * 0.02))
            Line((-FILLET3_R * 0.02, -FILLET3_R * 0.02), (FILLET3_R, -FILLET3_R * 0.02))
            Line((FILLET3_R, -FILLET3_R * 0.02), (FILLET3_R, 0))
        make_face()
    fillet3_piece_8b = extrude(amount=75.8, mode=Mode.PRIVATE)
    fillet3_piece_8b = split(fillet3_piece_8b, bisect_by=Plane(origin=(-6.799999999999991, -2.263951142668254, -8.613951142668252), z_dir=(-1, 0, -1.4e-16)), keep=Keep.TOP, mode=Mode.PRIVATE)
    fillet3_piece_8 = fillet3_piece_8a & fillet3_piece_8b
    add(fillet3_piece_8)

    # Sketch15 → Cut-Extrude3 (cut, through all)
    with BuildSketch(Plane(origin=(0, 0, -2.8999999999999972), x_dir=(-1, 0, 0), z_dir=(0, 0, -1))):
        with Locations((-18.60000000000002, -308.3)):
            Circle(SKETCH15_R)
    extrude(amount=-CUT_EXTRUDE3_DEPTH, mode=Mode.SUBTRACT)

    # Sketch16 → Boss-Extrude5 (add)
    with BuildSketch(Plane.XZ.offset(311.8)):
        with Locations((18.60000000000001, 2.89e-15)):
            Rectangle(SKETCH16_W, SKETCH16_H)
    extrude(amount=BOSS_EXTRUDE5_DEPTH)

    # Sketch17 → Cut-Extrude4 (cut, through all)
    with BuildSketch(Plane(origin=(0, 0, -2.8999999999999972), x_dir=(-1, 0, 0), z_dir=(0, 0, -1))):
        with Locations((-18.599999999999998, -349.838)):
            Circle(SKETCH17_R)
    extrude(amount=-CUT_EXTRUDE4_DEPTH, mode=Mode.SUBTRACT)

    # Sketch18 → Cut-Extrude5 (cut, through all)
    with BuildSketch(Plane.XY.offset(6.349999999999998)):
        with Locations((18.599999999999977, -153.62185561419372)):
            Circle(SKETCH18_R)
    extrude(amount=-CUT_EXTRUDE5_DEPTH, mode=Mode.SUBTRACT)


solid = part.part
